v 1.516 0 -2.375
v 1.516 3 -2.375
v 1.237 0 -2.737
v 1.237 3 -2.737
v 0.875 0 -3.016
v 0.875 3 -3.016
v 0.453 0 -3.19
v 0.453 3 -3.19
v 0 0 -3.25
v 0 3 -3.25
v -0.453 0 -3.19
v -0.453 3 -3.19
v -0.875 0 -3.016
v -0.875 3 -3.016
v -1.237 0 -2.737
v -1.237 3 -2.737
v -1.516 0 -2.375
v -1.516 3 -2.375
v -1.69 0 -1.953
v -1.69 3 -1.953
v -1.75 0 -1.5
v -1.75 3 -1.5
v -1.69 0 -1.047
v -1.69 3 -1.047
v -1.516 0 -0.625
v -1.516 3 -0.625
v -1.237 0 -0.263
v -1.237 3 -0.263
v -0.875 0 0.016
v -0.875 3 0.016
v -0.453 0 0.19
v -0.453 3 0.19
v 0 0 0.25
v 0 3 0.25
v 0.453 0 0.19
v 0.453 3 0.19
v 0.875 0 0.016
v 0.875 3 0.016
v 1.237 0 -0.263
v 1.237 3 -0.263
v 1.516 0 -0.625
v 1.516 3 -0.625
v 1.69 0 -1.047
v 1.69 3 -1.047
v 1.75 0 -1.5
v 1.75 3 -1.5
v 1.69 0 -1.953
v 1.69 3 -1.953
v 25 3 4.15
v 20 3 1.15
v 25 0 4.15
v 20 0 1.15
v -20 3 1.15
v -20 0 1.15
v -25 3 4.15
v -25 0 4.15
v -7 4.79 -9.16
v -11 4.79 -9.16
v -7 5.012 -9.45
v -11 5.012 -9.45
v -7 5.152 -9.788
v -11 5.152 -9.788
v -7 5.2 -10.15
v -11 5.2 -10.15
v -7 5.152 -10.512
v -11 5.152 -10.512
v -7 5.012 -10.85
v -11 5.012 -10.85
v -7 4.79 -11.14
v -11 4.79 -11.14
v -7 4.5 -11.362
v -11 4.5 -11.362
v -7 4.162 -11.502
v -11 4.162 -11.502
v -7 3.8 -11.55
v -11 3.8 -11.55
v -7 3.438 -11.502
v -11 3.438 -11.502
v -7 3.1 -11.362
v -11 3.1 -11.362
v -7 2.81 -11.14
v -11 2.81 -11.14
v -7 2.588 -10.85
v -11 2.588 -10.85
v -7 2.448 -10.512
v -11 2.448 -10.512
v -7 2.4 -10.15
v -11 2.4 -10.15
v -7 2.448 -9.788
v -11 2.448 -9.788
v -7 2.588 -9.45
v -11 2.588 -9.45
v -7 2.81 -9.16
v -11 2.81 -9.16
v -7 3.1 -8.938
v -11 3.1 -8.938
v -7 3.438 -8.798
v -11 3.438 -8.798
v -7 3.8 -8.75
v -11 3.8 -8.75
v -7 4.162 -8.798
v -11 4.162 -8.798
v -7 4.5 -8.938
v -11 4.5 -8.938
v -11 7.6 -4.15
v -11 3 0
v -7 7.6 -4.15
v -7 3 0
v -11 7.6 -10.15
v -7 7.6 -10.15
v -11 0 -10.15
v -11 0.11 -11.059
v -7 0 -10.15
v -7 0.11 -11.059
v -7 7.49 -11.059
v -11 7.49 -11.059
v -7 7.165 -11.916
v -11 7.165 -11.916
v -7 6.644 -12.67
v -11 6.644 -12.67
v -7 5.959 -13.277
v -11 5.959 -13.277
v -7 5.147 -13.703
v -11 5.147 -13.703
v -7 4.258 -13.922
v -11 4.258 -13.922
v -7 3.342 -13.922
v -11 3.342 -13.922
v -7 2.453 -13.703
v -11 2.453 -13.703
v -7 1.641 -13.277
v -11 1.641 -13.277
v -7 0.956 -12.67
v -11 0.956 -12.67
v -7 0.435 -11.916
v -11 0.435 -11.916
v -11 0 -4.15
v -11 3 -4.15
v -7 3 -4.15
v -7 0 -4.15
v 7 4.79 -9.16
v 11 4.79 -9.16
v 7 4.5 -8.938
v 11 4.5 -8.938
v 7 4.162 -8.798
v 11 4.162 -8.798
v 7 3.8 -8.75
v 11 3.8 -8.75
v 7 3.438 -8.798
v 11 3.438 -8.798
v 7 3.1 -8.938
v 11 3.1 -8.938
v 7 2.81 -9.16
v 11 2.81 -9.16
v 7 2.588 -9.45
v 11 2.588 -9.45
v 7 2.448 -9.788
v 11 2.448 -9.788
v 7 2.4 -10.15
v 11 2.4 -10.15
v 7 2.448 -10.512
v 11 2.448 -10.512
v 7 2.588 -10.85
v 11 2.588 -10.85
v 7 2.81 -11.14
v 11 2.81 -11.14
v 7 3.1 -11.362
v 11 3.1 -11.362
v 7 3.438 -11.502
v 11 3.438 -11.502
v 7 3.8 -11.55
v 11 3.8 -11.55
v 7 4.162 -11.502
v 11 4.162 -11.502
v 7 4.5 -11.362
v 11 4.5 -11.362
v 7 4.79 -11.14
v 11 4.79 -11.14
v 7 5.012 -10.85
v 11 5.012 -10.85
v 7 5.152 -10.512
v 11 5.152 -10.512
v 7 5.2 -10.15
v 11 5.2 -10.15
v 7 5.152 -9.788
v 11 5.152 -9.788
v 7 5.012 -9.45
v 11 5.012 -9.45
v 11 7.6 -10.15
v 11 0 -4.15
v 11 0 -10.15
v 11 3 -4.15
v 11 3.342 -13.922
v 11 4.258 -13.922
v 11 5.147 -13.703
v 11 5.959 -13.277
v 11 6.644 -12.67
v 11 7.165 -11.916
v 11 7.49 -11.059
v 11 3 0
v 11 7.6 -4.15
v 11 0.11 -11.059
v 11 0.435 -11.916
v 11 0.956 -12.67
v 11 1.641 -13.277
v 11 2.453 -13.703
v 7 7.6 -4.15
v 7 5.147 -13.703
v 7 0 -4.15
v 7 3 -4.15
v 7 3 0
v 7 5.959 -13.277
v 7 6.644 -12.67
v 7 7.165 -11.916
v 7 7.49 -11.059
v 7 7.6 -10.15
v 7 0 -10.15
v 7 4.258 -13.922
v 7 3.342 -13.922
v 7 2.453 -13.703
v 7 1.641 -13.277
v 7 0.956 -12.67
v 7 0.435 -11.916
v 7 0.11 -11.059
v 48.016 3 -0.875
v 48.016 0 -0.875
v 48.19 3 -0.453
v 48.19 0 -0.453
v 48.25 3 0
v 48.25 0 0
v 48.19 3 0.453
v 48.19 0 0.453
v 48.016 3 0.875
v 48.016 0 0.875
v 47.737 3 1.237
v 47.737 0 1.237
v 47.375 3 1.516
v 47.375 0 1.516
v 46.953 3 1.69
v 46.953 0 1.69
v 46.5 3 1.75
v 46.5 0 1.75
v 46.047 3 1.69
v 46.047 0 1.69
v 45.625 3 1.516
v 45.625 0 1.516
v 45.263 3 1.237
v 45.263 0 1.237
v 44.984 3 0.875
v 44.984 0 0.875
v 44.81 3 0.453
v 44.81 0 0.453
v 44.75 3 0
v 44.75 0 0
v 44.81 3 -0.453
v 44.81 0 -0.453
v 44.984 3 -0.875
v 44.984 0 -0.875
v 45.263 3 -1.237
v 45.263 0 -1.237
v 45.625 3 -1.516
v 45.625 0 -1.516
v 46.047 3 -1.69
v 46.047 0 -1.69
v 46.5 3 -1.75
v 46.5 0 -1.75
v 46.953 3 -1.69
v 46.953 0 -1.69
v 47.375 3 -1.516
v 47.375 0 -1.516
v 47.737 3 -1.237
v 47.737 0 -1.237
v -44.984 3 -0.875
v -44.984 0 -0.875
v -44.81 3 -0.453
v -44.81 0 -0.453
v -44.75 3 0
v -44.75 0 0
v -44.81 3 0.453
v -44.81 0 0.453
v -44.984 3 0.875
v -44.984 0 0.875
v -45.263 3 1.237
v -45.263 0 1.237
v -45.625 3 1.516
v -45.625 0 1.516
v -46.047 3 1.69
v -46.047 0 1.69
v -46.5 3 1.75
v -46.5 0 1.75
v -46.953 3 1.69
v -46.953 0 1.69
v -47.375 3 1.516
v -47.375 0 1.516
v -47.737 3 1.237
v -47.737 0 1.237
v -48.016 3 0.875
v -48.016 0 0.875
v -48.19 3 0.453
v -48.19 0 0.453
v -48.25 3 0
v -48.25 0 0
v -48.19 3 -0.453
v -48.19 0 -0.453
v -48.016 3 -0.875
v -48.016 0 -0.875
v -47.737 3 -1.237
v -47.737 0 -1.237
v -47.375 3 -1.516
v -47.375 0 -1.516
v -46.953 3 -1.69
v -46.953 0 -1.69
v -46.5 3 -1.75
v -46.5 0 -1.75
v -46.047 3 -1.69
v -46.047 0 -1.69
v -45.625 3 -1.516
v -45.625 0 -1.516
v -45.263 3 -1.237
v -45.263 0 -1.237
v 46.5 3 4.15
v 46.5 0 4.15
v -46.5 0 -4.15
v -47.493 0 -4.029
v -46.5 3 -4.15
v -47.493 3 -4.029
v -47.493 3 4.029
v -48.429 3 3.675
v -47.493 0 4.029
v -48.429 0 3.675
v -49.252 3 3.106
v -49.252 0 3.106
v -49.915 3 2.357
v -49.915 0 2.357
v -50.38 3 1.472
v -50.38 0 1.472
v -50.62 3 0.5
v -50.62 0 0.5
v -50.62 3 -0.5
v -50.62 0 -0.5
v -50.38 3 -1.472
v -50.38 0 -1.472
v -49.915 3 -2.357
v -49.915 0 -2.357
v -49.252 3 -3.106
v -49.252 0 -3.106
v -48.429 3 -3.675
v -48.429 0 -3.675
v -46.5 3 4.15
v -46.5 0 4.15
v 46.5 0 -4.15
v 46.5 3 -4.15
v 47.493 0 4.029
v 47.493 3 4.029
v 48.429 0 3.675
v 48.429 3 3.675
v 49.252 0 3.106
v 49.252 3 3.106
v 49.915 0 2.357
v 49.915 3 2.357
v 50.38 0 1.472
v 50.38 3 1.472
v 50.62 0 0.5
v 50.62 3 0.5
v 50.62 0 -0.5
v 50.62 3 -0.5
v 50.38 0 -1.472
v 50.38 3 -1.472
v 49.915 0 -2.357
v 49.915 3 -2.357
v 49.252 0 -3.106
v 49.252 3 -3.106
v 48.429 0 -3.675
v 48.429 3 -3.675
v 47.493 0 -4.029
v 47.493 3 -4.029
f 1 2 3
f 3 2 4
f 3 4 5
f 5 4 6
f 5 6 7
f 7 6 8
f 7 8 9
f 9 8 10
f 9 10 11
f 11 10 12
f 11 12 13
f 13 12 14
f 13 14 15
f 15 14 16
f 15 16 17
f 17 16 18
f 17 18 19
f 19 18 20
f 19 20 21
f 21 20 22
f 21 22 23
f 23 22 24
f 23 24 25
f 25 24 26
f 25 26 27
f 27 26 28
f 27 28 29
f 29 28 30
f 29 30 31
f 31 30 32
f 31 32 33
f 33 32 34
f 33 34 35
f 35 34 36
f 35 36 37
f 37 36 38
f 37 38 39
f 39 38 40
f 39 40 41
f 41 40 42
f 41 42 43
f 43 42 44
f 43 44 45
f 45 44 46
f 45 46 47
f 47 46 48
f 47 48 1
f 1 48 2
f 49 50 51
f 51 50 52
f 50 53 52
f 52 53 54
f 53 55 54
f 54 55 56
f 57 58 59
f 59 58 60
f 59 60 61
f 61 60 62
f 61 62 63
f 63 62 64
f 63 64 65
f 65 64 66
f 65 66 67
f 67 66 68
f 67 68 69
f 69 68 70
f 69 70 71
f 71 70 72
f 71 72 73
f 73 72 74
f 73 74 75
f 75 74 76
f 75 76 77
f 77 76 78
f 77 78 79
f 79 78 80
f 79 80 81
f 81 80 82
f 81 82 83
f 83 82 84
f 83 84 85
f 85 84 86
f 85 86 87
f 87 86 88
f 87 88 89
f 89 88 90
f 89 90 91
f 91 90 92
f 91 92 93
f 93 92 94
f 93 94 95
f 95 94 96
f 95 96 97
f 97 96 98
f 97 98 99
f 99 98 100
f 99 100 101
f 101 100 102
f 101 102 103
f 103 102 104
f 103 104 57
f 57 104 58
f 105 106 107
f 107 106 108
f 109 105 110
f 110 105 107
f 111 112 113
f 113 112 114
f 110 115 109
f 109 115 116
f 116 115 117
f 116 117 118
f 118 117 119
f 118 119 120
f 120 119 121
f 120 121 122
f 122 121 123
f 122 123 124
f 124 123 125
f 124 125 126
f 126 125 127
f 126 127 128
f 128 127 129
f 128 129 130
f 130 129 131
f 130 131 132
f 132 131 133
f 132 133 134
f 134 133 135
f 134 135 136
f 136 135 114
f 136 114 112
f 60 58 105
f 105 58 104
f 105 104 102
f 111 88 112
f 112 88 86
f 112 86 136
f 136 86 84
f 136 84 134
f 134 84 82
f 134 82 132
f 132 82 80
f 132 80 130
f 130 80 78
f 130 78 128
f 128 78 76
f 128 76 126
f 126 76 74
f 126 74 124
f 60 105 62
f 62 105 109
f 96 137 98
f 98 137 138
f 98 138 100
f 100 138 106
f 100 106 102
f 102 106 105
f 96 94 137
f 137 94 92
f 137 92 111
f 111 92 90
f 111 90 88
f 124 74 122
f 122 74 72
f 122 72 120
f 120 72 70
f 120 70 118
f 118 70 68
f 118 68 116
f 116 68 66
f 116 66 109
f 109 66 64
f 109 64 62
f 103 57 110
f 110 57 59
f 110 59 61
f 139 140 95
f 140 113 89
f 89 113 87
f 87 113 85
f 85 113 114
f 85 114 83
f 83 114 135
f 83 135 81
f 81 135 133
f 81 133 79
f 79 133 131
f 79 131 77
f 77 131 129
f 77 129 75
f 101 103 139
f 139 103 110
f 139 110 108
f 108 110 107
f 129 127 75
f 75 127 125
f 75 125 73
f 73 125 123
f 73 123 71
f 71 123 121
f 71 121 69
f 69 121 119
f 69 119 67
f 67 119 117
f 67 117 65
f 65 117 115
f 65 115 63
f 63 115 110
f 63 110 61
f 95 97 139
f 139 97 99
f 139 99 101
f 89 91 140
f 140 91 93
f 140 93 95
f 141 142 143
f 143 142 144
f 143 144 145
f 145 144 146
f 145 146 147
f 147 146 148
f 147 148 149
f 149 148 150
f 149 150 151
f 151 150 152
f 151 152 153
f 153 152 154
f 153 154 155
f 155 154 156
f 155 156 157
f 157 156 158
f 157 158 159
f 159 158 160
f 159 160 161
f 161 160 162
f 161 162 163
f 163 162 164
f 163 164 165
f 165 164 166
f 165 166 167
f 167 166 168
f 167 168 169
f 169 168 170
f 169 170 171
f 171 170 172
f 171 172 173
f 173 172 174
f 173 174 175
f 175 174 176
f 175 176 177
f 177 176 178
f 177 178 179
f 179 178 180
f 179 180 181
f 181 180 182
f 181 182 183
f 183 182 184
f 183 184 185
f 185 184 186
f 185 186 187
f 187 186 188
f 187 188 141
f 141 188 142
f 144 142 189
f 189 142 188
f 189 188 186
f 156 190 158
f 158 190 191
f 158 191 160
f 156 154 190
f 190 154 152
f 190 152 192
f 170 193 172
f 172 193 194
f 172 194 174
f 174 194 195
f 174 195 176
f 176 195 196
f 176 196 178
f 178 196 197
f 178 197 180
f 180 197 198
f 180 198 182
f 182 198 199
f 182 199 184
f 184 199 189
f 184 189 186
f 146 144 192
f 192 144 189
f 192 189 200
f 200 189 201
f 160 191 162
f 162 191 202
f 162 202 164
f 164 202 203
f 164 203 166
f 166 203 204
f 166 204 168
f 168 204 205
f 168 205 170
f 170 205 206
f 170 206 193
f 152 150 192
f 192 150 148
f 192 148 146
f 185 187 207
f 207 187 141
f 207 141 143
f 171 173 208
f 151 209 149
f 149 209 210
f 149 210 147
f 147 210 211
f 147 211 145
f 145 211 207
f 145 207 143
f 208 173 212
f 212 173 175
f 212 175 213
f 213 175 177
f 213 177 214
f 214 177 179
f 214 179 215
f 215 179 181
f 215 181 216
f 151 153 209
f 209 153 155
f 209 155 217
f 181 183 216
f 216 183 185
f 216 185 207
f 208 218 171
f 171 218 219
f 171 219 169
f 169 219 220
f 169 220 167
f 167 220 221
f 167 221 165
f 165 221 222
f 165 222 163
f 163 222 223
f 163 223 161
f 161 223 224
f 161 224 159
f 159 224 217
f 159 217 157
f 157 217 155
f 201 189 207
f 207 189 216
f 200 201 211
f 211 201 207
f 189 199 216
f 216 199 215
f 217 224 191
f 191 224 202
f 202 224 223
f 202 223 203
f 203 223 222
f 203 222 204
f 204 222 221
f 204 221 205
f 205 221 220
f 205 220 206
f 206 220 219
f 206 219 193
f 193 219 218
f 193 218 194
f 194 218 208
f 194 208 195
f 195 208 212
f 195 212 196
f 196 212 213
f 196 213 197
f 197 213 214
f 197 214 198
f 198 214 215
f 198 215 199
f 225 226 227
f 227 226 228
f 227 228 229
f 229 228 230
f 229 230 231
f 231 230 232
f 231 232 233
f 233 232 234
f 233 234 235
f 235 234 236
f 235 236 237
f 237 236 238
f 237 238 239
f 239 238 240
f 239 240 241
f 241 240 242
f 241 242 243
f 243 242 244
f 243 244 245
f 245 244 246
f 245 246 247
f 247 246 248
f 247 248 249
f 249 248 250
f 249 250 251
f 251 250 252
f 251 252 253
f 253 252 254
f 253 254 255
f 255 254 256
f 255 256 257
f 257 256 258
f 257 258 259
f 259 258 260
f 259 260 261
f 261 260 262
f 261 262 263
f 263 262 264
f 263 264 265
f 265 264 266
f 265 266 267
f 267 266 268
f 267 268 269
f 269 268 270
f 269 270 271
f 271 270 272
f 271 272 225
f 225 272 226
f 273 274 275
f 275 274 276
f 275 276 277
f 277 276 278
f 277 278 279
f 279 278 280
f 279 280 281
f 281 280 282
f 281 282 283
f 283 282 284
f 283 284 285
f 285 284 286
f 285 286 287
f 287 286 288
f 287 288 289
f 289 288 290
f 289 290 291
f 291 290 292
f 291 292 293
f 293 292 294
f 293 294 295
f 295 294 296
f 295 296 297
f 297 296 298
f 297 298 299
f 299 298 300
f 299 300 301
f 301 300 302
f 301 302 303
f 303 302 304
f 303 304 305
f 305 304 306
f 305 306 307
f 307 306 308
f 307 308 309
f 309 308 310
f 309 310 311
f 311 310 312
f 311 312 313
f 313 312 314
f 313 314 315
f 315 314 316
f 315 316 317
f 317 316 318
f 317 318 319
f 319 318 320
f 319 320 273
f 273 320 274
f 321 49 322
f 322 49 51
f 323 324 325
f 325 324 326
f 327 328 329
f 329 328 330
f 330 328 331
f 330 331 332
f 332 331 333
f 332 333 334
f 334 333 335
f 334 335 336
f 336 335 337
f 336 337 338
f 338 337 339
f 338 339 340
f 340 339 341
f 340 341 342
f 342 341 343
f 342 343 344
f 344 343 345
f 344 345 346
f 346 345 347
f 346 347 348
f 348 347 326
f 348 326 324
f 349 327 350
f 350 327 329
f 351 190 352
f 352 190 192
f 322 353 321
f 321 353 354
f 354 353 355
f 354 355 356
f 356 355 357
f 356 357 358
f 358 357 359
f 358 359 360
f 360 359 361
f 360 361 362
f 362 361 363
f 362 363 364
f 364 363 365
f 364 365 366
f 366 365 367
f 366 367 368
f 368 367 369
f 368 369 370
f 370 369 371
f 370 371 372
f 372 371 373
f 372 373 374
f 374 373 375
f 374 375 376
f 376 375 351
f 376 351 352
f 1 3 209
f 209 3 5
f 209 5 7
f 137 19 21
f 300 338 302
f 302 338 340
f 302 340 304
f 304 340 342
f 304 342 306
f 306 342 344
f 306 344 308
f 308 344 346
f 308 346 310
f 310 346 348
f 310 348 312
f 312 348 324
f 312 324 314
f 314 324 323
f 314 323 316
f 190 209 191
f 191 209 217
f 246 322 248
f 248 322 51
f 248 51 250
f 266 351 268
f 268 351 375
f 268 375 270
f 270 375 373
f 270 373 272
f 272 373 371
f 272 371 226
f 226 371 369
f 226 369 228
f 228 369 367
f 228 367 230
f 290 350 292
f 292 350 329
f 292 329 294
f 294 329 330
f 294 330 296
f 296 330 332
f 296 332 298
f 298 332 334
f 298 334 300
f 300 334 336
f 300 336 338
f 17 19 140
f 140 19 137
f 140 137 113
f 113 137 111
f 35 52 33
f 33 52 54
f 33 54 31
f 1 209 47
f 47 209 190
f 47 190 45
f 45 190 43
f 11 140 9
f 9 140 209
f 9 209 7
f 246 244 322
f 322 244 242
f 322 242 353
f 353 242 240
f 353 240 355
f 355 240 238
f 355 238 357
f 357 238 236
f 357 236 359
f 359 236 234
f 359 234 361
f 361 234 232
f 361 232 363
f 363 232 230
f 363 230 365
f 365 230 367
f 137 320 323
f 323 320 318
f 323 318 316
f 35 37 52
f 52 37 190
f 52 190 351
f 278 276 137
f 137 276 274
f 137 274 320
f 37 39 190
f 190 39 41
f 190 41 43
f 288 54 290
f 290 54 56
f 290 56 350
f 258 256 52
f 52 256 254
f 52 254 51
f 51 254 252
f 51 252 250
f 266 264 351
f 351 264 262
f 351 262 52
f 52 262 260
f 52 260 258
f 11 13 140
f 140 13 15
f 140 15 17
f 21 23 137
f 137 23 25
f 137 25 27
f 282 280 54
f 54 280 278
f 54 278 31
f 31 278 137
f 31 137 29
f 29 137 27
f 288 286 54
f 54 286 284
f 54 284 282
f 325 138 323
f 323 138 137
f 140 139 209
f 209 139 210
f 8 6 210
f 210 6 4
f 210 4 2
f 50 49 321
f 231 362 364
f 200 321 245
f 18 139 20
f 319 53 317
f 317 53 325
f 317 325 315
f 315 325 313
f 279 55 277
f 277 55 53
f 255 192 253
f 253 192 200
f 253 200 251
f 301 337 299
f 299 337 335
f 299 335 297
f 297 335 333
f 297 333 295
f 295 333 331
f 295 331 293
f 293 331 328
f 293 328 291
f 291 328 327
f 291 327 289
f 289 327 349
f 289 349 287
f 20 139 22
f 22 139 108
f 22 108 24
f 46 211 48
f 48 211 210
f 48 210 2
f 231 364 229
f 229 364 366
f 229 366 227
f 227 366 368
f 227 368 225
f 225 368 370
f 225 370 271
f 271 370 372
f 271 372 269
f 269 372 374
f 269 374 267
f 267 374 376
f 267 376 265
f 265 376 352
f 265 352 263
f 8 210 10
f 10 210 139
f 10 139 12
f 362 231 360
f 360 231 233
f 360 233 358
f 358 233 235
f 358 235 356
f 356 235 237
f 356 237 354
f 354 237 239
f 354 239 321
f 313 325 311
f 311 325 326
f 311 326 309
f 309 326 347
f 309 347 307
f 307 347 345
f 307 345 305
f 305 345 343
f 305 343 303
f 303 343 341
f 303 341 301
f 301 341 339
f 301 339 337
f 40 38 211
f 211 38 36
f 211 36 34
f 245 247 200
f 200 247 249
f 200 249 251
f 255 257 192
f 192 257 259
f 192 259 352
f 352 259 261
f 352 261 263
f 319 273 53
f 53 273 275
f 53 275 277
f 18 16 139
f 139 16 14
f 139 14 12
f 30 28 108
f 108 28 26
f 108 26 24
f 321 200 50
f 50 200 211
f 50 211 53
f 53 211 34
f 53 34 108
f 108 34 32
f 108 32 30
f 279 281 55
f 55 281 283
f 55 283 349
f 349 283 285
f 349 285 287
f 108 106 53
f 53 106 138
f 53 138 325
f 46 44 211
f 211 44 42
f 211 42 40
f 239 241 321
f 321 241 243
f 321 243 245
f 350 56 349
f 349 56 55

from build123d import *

# Parameters (mm, degrees)
SCHIZZO1_R                   = 1.75
ESTRUSIONE_ESTRUSIONE1_DEPTH = 3
ESTRUSIONE_ESTRUSIONE2_START = 11
SCHIZZO2_R                   = 1.4
ESTRUSIONE_ESTRUSIONE2_DEPTH = 4
TAGLIO_ESTRUSIONE1_DEPTH     = 53.736941512
SCHIZZO4_R                   = 1.75
TAGLIO_ESTRUSIONE2_DEPTH     = 53.736941512


with BuildPart() as part:
    # Schizzo1 → Estrusione-Estrusione1 (new body)
    with BuildSketch(Plane(origin=(0, 0, 0), x_dir=(1, 0, 0), z_dir=(0, 1, 0))):
        with BuildLine():
            Line((-46.5, -4.15), (46.5, -4.15))
            ThreePointArc((46.5, -4.15), (50.65, 0), (46.5, 4.15))
            Line((46.5, 4.15), (-46.5, 4.15))
            ThreePointArc((-46.5, 4.15), (-50.65, 0), (-46.5, -4.15))
        make_face()
        with Locations(Location((46.5, 0, 0), (0, 0, 270))):
            Circle(SCHIZZO1_R, mode=Mode.SUBTRACT)
        with Locations(Location((-46.5, 0, 0), (0, 0, 270))):
            Circle(SCHIZZO1_R, mode=Mode.SUBTRACT)
    extrude(amount=ESTRUSIONE_ESTRUSIONE1_DEPTH)

    # Schizzo2 → Estrusione-Estrusione2 (add)
    with BuildSketch(Plane(origin=(0, 0, 0), x_dir=(0, 0, -1), z_dir=(1, 0, 0)).offset(ESTRUSIONE_ESTRUSIONE2_START)):
        with BuildLine():
            Line((10.15, 7.6), (4.15, 7.6))
            Line((4.15, 7.6), (0, 3))
            Line((0, 3), (4.15, 3))
            Line((4.15, 3), (4.15, 0))
            Line((4.15, 0), (10.15, 0))
            ThreePointArc((10.15, 0), (13.95, 3.8), (10.15, 7.6))
        make_face()
        with Locations((10.15, 3.8)):
            Circle(SCHIZZO2_R, mode=Mode.SUBTRACT)
    estrusione_estrusione2 = extrude(amount=-ESTRUSIONE_ESTRUSIONE2_DEPTH)

    # Specchia1: Estrusione-Estrusione2 across plane
    add(estrusione_estrusione2.mirror(Plane(origin=(0, 0, 0), x_dir=(0, 0, 1), z_dir=(1, 0, 0))))

    # Schizzo3 → Taglio-Estrusione1 (cut, through all)
    with BuildSketch(Plane(origin=(0, 3, 0), x_dir=(1, 0, 0), z_dir=(0, 1, 0))):
        Polygon((-25, -4.15), (-20, -1.15), (20, -1.15), (25, -4.15), align=None)
    extrude(amount=-TAGLIO_ESTRUSIONE1_DEPTH, mode=Mode.SUBTRACT)

    # Schizzo4 → Taglio-Estrusione2 (cut, through all)
    with BuildSketch(Plane(origin=(0, 3, 0), x_dir=(1, 0, 0), z_dir=(0, 1, 0))):
        with Locations(Location((0, 1.5, 0), (0, 0, 270))):
            Circle(SCHIZZO4_R)
    extrude(amount=-TAGLIO_ESTRUSIONE2_DEPTH, mode=Mode.SUBTRACT)


solid = part.part
